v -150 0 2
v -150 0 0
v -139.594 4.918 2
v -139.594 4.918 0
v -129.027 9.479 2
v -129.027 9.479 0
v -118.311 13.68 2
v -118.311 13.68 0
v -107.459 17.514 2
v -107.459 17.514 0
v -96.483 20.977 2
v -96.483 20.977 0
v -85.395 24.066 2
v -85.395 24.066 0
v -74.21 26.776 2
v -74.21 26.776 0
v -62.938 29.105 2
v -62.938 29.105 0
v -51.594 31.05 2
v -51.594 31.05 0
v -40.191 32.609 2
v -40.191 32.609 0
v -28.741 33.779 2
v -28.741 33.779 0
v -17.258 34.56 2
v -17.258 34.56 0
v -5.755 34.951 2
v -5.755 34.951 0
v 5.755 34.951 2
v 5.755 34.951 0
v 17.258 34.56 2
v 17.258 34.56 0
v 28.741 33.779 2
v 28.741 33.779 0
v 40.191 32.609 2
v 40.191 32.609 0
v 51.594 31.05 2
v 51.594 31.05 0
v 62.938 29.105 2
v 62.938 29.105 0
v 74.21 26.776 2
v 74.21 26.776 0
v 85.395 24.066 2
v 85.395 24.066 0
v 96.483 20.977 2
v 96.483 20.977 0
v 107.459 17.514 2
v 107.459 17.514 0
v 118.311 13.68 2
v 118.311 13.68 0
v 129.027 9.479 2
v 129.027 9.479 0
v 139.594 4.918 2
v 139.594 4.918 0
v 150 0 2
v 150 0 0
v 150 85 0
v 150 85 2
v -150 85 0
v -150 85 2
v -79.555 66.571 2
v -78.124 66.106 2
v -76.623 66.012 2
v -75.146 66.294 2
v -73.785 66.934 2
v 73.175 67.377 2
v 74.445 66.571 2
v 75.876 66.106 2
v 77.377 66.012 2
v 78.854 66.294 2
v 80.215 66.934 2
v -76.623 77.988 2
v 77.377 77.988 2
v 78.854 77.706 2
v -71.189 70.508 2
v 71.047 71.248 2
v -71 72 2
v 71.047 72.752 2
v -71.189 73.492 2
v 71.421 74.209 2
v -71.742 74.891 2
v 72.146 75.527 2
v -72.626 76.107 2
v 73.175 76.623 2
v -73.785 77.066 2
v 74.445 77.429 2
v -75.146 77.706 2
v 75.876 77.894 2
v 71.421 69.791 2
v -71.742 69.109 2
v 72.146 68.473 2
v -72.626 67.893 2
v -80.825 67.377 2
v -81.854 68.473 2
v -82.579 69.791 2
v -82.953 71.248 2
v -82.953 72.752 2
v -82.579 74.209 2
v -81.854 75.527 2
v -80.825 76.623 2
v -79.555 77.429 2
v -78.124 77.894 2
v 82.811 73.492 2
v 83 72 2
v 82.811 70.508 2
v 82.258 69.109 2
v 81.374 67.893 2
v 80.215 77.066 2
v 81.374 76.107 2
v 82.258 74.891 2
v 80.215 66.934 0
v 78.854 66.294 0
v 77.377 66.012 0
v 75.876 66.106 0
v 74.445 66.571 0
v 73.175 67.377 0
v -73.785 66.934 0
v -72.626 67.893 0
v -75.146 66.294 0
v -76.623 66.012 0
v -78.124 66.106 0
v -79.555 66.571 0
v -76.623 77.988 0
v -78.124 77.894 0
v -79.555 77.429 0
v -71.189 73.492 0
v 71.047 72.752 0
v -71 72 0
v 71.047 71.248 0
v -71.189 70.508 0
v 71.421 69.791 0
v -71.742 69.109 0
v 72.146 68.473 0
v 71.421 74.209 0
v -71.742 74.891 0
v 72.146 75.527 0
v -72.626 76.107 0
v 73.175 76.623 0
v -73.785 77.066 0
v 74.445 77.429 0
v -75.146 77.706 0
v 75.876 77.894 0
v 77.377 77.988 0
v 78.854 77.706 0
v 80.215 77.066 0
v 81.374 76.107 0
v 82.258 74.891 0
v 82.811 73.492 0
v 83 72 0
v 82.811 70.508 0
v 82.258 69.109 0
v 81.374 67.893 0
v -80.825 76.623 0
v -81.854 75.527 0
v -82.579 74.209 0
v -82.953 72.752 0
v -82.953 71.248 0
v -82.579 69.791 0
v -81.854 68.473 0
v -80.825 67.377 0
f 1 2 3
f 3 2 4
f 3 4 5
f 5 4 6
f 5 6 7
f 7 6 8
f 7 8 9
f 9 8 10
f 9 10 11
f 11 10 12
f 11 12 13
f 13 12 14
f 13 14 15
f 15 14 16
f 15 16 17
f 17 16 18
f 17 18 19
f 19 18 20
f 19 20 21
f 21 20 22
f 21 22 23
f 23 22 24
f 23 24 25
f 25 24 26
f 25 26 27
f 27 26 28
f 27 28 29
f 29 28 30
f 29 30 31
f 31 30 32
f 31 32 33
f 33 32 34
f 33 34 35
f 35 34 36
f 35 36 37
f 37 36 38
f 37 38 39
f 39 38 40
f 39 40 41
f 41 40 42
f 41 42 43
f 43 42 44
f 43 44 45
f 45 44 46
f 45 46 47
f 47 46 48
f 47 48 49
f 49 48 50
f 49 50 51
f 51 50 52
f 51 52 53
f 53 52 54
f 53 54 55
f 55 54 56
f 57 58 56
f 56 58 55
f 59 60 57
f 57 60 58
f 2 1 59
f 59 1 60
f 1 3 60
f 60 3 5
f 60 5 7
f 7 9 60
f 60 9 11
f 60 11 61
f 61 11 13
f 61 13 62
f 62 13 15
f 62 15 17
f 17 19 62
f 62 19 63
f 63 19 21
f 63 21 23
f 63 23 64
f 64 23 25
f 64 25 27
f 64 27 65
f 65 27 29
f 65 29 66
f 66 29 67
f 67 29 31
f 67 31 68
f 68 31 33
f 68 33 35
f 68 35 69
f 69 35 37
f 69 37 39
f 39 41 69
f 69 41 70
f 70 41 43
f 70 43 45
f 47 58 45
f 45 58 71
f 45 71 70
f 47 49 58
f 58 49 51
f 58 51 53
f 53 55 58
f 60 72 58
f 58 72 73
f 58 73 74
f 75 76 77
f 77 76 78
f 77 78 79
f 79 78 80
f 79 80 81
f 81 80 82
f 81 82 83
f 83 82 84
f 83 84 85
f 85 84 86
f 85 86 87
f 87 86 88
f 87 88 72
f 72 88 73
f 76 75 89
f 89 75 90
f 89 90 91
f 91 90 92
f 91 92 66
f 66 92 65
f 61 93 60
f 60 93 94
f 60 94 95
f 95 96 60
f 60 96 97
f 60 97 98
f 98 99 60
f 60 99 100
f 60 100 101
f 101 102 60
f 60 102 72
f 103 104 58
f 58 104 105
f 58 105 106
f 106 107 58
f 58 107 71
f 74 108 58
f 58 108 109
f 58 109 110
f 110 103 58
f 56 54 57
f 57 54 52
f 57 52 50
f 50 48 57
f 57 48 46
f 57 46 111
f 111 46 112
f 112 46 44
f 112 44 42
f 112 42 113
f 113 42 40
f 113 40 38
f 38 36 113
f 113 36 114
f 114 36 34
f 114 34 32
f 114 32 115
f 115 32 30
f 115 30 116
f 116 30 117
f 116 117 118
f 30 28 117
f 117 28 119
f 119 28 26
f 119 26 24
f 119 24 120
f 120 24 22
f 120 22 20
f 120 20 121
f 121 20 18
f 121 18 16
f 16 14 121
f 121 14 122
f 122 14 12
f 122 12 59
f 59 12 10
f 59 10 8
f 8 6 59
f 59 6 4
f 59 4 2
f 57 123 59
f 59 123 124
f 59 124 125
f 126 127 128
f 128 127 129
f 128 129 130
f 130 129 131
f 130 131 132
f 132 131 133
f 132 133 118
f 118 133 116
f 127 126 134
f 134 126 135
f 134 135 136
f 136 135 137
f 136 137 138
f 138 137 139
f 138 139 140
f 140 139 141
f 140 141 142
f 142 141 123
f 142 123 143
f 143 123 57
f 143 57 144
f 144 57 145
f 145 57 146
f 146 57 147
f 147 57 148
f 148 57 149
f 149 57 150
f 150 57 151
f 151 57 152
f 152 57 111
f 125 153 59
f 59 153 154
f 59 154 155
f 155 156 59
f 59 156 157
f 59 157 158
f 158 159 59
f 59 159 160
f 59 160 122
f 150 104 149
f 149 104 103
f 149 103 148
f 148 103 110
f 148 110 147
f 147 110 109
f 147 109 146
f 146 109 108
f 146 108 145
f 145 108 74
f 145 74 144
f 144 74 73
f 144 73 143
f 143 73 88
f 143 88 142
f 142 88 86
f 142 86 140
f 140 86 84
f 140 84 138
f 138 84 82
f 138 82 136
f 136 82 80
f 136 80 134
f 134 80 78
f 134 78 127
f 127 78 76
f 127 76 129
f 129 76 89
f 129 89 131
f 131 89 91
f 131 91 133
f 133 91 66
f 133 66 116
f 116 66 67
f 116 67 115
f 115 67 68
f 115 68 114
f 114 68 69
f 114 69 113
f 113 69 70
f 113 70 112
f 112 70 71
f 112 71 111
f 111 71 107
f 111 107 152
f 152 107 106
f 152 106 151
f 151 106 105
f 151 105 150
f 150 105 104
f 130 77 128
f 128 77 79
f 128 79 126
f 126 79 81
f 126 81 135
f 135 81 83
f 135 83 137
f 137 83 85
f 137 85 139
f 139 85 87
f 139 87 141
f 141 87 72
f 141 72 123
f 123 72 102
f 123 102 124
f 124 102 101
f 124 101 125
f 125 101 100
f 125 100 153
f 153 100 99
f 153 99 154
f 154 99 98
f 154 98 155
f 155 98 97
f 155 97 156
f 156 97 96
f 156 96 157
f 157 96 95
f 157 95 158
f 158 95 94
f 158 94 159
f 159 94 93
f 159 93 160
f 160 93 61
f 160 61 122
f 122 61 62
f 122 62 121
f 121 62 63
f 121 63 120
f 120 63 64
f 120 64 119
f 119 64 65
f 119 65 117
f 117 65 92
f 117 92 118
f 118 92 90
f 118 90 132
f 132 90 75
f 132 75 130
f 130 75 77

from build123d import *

# Parameters (mm, degrees)
SALIENTE_EXTRUIR1_DEPTH = 2
CROQUIS2_R              = 6
CORTAR_EXTRUIR1_DEPTH   = 173.420996401


with BuildPart() as part:
    # Croquis1 → Saliente-Extruir1 (new body)
    with BuildSketch(Plane.XY):
        with BuildLine():
            Line((-150, 0), (-150, 85))
            Line((-150, 85), (150, 85))
            Line((150, 85), (150, 0))
            ThreePointArc((150, 0), (0, 35), (-150, 0))
        make_face()
    extrude(amount=SALIENTE_EXTRUIR1_DEPTH)

    # Croquis2 → Cortar-Extruir1 (cut, through all)
    with BuildSketch(Plane.XY.offset(2)):
        with Locations((-77, 72)):
            Circle(CROQUIS2_R)
        with Locations((77, 72)):
            Circle(CROQUIS2_R)
    extrude(amount=-CORTAR_EXTRUIR1_DEPTH, mode=Mode.SUBTRACT)


solid = part.part
